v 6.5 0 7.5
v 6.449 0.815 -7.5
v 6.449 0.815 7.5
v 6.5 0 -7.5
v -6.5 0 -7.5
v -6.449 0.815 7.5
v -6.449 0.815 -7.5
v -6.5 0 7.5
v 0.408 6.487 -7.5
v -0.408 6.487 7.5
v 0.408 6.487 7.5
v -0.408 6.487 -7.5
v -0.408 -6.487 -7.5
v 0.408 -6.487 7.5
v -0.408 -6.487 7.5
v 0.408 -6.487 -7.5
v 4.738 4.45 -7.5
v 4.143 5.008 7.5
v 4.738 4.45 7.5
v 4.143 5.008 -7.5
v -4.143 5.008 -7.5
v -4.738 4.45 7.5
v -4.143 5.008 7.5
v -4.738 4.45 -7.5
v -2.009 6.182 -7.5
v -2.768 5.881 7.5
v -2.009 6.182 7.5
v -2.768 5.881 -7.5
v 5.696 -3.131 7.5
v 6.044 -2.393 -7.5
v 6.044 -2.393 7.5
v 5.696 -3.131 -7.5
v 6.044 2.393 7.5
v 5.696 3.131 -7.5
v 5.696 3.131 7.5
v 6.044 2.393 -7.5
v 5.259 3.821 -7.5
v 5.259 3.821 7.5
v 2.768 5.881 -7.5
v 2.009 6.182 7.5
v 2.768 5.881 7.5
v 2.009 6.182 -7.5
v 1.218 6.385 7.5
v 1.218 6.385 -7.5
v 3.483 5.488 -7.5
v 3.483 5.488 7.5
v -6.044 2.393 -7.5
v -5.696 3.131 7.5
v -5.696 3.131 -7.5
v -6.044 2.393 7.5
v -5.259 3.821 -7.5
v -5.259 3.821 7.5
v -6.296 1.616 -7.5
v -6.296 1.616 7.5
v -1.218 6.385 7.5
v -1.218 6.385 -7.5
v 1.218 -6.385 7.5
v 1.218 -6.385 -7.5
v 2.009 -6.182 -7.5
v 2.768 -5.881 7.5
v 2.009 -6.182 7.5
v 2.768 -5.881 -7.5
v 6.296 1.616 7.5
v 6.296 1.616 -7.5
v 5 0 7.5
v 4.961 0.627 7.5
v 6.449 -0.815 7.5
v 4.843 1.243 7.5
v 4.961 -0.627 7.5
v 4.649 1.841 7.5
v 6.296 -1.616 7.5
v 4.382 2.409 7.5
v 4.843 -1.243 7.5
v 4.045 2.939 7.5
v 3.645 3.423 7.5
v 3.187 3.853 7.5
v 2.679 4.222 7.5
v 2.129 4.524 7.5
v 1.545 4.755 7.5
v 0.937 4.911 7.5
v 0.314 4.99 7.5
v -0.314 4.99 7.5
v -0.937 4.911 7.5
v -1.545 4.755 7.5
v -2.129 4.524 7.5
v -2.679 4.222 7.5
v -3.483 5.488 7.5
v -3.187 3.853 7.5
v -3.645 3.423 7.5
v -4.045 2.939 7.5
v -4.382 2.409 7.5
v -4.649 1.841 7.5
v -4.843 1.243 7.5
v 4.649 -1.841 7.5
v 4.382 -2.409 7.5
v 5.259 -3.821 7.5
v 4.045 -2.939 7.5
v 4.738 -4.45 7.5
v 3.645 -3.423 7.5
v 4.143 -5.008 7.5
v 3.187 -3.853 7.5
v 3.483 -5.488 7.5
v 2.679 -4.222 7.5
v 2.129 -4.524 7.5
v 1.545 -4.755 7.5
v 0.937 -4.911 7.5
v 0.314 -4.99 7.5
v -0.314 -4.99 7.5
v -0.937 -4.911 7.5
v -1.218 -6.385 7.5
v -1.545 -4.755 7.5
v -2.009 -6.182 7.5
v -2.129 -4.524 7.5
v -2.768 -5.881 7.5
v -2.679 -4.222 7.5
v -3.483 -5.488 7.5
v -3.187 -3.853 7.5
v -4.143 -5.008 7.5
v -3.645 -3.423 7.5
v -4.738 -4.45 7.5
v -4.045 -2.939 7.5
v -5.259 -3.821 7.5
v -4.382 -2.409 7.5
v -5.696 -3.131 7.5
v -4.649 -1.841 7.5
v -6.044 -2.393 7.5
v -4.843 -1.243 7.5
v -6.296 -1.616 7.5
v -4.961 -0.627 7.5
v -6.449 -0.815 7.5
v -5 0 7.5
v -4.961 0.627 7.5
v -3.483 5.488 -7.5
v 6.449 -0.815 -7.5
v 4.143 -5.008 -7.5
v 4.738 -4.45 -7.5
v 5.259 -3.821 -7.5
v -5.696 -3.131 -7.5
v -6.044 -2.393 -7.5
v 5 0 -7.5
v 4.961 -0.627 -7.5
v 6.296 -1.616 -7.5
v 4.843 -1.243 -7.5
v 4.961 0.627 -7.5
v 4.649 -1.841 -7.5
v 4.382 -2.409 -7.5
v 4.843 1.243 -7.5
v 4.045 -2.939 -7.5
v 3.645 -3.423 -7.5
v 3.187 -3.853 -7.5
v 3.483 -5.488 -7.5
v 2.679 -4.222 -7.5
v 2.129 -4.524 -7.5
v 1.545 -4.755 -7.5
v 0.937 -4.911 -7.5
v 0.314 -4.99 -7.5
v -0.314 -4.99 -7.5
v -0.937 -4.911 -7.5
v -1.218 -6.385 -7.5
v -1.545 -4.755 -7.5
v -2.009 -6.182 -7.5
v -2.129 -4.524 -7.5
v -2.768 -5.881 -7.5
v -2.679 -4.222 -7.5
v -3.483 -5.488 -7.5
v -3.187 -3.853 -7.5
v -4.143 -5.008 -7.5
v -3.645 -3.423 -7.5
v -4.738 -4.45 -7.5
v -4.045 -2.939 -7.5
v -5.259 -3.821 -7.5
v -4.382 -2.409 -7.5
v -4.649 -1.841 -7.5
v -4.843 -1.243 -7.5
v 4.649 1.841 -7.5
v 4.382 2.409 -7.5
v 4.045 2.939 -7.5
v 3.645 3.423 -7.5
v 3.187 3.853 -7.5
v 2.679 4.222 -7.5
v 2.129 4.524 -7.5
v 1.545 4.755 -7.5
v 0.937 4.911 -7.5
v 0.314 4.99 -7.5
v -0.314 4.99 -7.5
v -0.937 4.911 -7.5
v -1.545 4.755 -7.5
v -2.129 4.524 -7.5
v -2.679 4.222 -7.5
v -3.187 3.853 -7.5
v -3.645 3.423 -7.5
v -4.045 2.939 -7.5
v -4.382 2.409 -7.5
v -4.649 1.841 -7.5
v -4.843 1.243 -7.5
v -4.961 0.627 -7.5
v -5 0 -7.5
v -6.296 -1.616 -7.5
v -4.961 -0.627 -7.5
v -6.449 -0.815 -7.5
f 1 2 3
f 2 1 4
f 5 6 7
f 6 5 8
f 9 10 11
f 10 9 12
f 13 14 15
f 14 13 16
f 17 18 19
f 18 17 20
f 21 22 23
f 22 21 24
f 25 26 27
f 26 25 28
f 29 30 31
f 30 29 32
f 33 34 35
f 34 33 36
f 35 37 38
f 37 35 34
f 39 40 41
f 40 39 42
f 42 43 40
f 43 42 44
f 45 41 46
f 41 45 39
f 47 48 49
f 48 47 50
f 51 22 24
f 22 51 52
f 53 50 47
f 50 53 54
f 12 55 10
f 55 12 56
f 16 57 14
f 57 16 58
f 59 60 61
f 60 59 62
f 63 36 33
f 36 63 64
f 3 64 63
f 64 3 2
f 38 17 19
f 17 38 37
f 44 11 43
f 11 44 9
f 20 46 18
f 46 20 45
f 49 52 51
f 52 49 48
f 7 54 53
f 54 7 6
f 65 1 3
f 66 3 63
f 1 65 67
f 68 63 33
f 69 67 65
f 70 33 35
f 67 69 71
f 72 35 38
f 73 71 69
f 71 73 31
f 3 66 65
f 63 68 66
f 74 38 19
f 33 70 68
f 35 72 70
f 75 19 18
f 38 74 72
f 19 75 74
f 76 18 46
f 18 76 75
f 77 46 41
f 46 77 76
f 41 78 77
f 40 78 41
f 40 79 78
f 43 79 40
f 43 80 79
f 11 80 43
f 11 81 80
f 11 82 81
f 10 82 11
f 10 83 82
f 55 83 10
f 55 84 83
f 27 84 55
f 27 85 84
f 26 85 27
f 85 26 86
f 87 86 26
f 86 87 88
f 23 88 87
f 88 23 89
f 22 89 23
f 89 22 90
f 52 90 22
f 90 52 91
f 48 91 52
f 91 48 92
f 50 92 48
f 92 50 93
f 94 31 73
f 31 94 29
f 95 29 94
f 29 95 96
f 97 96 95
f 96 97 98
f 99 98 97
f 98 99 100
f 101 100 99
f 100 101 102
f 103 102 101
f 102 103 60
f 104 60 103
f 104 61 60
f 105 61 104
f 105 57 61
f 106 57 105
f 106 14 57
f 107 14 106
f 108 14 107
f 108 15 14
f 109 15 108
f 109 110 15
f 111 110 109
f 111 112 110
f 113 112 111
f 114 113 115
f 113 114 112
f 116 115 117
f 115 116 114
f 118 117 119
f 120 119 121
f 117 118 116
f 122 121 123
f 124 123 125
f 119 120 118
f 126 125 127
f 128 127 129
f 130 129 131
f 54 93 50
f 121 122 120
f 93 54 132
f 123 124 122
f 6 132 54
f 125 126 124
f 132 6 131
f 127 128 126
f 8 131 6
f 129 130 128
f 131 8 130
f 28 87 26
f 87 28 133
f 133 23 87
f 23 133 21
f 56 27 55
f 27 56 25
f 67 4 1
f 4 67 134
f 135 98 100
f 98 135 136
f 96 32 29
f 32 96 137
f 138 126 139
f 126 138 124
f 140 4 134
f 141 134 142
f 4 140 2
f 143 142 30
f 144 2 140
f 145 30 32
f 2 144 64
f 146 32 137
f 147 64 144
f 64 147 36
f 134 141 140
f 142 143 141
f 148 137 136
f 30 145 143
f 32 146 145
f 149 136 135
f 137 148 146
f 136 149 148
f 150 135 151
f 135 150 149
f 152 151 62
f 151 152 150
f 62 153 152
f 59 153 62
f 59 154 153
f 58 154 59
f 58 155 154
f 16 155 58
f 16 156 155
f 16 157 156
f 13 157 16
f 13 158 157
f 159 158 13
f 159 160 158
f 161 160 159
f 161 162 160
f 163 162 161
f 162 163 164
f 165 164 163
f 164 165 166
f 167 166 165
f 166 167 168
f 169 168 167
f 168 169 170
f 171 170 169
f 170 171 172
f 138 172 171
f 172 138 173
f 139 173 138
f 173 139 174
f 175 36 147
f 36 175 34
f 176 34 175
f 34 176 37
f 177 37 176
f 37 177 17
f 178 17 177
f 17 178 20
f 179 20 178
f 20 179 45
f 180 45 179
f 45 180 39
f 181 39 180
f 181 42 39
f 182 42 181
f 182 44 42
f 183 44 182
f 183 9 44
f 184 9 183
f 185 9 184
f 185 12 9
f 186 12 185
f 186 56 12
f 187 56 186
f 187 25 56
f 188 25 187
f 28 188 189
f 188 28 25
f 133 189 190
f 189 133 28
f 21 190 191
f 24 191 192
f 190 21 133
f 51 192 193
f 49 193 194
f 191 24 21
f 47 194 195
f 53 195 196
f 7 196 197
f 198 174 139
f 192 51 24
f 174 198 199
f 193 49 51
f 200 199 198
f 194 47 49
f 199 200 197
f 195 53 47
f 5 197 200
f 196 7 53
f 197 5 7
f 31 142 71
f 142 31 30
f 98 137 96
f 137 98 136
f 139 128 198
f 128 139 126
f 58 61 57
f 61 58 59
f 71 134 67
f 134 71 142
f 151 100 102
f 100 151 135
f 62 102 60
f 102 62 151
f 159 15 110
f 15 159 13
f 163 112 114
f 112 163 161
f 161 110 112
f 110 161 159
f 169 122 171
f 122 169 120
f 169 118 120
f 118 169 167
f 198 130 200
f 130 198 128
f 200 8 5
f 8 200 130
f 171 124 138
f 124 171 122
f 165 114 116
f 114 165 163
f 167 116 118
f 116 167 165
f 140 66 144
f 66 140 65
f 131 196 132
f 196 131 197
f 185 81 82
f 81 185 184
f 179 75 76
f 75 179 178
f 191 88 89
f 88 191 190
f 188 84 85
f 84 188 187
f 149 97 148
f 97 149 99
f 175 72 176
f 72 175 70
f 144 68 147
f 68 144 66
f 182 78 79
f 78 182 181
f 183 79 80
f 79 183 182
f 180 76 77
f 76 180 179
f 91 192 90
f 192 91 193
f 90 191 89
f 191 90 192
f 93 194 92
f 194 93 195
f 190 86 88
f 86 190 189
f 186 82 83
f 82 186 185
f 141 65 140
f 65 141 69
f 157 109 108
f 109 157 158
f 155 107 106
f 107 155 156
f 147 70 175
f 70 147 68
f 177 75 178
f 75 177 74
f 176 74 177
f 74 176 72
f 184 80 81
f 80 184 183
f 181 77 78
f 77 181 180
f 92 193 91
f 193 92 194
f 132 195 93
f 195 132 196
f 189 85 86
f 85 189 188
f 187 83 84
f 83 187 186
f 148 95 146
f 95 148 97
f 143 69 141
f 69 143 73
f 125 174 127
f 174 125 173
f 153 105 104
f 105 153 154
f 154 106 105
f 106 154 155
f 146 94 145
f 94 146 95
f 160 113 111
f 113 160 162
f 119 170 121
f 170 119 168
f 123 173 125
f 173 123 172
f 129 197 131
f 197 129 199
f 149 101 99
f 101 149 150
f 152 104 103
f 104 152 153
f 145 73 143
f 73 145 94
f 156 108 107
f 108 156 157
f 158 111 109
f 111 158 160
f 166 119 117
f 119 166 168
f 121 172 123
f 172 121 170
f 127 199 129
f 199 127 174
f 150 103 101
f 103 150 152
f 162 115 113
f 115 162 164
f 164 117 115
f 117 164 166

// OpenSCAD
$fn = 50;


difference() {
	union() {
		translate(v = [0, 0, -7.5000000000]) {
			cylinder(h = 15, r = 6.5000000000);
		}
	}
	union() {
		translate(v = [0, 0, -100.0000000000]) {
			cylinder(h = 200, r = 5.0000000000);
		}
	}
}
